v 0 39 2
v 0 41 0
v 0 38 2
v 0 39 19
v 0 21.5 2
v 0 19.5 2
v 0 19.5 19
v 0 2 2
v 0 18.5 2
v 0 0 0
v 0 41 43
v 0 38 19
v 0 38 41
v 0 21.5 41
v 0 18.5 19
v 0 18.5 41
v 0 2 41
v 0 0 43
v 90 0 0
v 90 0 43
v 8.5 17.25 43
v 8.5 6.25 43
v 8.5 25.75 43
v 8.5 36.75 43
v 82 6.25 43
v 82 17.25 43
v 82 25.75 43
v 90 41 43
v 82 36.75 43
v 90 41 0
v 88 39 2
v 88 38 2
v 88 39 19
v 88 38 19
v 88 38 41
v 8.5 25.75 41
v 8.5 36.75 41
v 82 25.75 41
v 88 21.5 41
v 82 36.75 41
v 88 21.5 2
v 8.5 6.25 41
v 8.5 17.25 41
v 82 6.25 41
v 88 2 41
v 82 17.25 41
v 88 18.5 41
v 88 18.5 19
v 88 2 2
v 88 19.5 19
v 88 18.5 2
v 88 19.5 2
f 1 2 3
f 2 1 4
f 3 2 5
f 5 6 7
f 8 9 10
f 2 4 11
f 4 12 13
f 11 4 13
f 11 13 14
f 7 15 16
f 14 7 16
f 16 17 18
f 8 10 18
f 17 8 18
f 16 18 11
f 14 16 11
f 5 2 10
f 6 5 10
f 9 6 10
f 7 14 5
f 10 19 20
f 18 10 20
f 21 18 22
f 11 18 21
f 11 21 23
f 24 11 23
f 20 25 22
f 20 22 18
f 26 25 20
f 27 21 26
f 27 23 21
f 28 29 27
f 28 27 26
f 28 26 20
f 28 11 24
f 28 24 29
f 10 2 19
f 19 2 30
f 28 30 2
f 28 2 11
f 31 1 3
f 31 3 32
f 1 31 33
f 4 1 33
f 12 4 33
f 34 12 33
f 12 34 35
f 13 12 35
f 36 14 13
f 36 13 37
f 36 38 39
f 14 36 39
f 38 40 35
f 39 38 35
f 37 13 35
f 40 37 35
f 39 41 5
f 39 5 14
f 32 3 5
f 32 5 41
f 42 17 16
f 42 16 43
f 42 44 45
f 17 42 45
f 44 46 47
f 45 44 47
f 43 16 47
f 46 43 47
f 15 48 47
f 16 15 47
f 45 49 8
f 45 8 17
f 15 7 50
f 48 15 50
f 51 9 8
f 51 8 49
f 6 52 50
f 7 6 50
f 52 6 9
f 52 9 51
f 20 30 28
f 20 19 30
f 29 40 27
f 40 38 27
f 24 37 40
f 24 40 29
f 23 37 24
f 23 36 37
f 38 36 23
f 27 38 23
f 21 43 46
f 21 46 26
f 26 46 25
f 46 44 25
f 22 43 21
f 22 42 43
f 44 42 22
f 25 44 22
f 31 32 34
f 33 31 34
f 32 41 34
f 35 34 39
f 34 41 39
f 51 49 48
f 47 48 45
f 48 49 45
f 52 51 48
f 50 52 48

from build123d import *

# Parameters (mm, degrees)
BOX006_W     = 73.5
BOX006_H     = 11
BOX006_DEPTH = 10
BOX005_W     = 73.5
BOX005_H     = 11
BOX005_DEPTH = 10
BOX004_W     = 88
BOX004_H     = 1
BOX004_DEPTH = 17
BOX003_W     = 88
BOX003_H     = 1
BOX003_DEPTH = 17
BOX002_W     = 88
BOX002_H     = 16.5
BOX002_DEPTH = 39
BOX001_W     = 88
BOX001_H     = 16.5
BOX001_DEPTH = 39
BOX_W        = 90
BOX_H        = 41
BOX_DEPTH    = 43


with BuildPart() as cube006:
    # Box006 → Box006 (new body)
    with BuildSketch(Plane(origin=(8.5, 25.75, 35), x_dir=(1, 0, 0), z_dir=(0, 0, 1))):
        with Locations((36.75, 5.5)):
            Rectangle(BOX006_W, BOX006_H)
    extrude(amount=BOX006_DEPTH)


with BuildPart() as cube005:
    # Box005 → Box005 (new body)
    with BuildSketch(Plane(origin=(8.5, 6.25, 35), x_dir=(1, 0, 0), z_dir=(0, 0, 1))):
        with Locations((36.75, 5.5)):
            Rectangle(BOX005_W, BOX005_H)
    extrude(amount=BOX005_DEPTH)


with BuildPart() as cube004:
    # Box004 → Box004 (new body)
    with BuildSketch(Plane(origin=(0, 38, 2), x_dir=(1, 0, 0), z_dir=(0, 0, 1))):
        with Locations((44, 0.5)):
            Rectangle(BOX004_W, BOX004_H)
    extrude(amount=BOX004_DEPTH)


with BuildPart() as cube003:
    # Box003 → Box003 (new body)
    with BuildSketch(Plane(origin=(0, 18.5, 2), x_dir=(1, 0, 0), z_dir=(0, 0, 1))):
        with Locations((44, 0.5)):
            Rectangle(BOX003_W, BOX003_H)
    extrude(amount=BOX003_DEPTH)


with BuildPart() as cube002:
    # Box002 → Box002 (new body)
    with BuildSketch(Plane(origin=(0, 21.5, 2), x_dir=(1, 0, 0), z_dir=(0, 0, 1))):
        with Locations((44, 8.25)):
            Rectangle(BOX002_W, BOX002_H)
    extrude(amount=BOX002_DEPTH)


with BuildPart() as cube001:
    # Box001 → Box001 (new body)
    with BuildSketch(Plane(origin=(0, 2, 2), x_dir=(1, 0, 0), z_dir=(0, 0, 1))):
        with Locations((44, 8.25)):
            Rectangle(BOX001_W, BOX001_H)
    extrude(amount=BOX001_DEPTH)


with BuildPart() as cut005:
    # Box → Box (new body)
    with BuildSketch(Plane.XY):
        with Locations((45, 20.5)):
            Rectangle(BOX_W, BOX_H)
    extrude(amount=BOX_DEPTH)

    # Cut: cut Cube001
    add(cube001.part, mode=Mode.SUBTRACT)

    # Cut001: cut Cube002
    add(cube002.part, mode=Mode.SUBTRACT)

    # Cut002: cut Cube003
    add(cube003.part, mode=Mode.SUBTRACT)

    # Cut003: cut Cube004
    add(cube004.part, mode=Mode.SUBTRACT)

    # Cut004: cut Cube005
    add(cube005.part, mode=Mode.SUBTRACT)

    # Cut005: cut Cube006
    add(cube006.part, mode=Mode.SUBTRACT)


solid = cut005.part
